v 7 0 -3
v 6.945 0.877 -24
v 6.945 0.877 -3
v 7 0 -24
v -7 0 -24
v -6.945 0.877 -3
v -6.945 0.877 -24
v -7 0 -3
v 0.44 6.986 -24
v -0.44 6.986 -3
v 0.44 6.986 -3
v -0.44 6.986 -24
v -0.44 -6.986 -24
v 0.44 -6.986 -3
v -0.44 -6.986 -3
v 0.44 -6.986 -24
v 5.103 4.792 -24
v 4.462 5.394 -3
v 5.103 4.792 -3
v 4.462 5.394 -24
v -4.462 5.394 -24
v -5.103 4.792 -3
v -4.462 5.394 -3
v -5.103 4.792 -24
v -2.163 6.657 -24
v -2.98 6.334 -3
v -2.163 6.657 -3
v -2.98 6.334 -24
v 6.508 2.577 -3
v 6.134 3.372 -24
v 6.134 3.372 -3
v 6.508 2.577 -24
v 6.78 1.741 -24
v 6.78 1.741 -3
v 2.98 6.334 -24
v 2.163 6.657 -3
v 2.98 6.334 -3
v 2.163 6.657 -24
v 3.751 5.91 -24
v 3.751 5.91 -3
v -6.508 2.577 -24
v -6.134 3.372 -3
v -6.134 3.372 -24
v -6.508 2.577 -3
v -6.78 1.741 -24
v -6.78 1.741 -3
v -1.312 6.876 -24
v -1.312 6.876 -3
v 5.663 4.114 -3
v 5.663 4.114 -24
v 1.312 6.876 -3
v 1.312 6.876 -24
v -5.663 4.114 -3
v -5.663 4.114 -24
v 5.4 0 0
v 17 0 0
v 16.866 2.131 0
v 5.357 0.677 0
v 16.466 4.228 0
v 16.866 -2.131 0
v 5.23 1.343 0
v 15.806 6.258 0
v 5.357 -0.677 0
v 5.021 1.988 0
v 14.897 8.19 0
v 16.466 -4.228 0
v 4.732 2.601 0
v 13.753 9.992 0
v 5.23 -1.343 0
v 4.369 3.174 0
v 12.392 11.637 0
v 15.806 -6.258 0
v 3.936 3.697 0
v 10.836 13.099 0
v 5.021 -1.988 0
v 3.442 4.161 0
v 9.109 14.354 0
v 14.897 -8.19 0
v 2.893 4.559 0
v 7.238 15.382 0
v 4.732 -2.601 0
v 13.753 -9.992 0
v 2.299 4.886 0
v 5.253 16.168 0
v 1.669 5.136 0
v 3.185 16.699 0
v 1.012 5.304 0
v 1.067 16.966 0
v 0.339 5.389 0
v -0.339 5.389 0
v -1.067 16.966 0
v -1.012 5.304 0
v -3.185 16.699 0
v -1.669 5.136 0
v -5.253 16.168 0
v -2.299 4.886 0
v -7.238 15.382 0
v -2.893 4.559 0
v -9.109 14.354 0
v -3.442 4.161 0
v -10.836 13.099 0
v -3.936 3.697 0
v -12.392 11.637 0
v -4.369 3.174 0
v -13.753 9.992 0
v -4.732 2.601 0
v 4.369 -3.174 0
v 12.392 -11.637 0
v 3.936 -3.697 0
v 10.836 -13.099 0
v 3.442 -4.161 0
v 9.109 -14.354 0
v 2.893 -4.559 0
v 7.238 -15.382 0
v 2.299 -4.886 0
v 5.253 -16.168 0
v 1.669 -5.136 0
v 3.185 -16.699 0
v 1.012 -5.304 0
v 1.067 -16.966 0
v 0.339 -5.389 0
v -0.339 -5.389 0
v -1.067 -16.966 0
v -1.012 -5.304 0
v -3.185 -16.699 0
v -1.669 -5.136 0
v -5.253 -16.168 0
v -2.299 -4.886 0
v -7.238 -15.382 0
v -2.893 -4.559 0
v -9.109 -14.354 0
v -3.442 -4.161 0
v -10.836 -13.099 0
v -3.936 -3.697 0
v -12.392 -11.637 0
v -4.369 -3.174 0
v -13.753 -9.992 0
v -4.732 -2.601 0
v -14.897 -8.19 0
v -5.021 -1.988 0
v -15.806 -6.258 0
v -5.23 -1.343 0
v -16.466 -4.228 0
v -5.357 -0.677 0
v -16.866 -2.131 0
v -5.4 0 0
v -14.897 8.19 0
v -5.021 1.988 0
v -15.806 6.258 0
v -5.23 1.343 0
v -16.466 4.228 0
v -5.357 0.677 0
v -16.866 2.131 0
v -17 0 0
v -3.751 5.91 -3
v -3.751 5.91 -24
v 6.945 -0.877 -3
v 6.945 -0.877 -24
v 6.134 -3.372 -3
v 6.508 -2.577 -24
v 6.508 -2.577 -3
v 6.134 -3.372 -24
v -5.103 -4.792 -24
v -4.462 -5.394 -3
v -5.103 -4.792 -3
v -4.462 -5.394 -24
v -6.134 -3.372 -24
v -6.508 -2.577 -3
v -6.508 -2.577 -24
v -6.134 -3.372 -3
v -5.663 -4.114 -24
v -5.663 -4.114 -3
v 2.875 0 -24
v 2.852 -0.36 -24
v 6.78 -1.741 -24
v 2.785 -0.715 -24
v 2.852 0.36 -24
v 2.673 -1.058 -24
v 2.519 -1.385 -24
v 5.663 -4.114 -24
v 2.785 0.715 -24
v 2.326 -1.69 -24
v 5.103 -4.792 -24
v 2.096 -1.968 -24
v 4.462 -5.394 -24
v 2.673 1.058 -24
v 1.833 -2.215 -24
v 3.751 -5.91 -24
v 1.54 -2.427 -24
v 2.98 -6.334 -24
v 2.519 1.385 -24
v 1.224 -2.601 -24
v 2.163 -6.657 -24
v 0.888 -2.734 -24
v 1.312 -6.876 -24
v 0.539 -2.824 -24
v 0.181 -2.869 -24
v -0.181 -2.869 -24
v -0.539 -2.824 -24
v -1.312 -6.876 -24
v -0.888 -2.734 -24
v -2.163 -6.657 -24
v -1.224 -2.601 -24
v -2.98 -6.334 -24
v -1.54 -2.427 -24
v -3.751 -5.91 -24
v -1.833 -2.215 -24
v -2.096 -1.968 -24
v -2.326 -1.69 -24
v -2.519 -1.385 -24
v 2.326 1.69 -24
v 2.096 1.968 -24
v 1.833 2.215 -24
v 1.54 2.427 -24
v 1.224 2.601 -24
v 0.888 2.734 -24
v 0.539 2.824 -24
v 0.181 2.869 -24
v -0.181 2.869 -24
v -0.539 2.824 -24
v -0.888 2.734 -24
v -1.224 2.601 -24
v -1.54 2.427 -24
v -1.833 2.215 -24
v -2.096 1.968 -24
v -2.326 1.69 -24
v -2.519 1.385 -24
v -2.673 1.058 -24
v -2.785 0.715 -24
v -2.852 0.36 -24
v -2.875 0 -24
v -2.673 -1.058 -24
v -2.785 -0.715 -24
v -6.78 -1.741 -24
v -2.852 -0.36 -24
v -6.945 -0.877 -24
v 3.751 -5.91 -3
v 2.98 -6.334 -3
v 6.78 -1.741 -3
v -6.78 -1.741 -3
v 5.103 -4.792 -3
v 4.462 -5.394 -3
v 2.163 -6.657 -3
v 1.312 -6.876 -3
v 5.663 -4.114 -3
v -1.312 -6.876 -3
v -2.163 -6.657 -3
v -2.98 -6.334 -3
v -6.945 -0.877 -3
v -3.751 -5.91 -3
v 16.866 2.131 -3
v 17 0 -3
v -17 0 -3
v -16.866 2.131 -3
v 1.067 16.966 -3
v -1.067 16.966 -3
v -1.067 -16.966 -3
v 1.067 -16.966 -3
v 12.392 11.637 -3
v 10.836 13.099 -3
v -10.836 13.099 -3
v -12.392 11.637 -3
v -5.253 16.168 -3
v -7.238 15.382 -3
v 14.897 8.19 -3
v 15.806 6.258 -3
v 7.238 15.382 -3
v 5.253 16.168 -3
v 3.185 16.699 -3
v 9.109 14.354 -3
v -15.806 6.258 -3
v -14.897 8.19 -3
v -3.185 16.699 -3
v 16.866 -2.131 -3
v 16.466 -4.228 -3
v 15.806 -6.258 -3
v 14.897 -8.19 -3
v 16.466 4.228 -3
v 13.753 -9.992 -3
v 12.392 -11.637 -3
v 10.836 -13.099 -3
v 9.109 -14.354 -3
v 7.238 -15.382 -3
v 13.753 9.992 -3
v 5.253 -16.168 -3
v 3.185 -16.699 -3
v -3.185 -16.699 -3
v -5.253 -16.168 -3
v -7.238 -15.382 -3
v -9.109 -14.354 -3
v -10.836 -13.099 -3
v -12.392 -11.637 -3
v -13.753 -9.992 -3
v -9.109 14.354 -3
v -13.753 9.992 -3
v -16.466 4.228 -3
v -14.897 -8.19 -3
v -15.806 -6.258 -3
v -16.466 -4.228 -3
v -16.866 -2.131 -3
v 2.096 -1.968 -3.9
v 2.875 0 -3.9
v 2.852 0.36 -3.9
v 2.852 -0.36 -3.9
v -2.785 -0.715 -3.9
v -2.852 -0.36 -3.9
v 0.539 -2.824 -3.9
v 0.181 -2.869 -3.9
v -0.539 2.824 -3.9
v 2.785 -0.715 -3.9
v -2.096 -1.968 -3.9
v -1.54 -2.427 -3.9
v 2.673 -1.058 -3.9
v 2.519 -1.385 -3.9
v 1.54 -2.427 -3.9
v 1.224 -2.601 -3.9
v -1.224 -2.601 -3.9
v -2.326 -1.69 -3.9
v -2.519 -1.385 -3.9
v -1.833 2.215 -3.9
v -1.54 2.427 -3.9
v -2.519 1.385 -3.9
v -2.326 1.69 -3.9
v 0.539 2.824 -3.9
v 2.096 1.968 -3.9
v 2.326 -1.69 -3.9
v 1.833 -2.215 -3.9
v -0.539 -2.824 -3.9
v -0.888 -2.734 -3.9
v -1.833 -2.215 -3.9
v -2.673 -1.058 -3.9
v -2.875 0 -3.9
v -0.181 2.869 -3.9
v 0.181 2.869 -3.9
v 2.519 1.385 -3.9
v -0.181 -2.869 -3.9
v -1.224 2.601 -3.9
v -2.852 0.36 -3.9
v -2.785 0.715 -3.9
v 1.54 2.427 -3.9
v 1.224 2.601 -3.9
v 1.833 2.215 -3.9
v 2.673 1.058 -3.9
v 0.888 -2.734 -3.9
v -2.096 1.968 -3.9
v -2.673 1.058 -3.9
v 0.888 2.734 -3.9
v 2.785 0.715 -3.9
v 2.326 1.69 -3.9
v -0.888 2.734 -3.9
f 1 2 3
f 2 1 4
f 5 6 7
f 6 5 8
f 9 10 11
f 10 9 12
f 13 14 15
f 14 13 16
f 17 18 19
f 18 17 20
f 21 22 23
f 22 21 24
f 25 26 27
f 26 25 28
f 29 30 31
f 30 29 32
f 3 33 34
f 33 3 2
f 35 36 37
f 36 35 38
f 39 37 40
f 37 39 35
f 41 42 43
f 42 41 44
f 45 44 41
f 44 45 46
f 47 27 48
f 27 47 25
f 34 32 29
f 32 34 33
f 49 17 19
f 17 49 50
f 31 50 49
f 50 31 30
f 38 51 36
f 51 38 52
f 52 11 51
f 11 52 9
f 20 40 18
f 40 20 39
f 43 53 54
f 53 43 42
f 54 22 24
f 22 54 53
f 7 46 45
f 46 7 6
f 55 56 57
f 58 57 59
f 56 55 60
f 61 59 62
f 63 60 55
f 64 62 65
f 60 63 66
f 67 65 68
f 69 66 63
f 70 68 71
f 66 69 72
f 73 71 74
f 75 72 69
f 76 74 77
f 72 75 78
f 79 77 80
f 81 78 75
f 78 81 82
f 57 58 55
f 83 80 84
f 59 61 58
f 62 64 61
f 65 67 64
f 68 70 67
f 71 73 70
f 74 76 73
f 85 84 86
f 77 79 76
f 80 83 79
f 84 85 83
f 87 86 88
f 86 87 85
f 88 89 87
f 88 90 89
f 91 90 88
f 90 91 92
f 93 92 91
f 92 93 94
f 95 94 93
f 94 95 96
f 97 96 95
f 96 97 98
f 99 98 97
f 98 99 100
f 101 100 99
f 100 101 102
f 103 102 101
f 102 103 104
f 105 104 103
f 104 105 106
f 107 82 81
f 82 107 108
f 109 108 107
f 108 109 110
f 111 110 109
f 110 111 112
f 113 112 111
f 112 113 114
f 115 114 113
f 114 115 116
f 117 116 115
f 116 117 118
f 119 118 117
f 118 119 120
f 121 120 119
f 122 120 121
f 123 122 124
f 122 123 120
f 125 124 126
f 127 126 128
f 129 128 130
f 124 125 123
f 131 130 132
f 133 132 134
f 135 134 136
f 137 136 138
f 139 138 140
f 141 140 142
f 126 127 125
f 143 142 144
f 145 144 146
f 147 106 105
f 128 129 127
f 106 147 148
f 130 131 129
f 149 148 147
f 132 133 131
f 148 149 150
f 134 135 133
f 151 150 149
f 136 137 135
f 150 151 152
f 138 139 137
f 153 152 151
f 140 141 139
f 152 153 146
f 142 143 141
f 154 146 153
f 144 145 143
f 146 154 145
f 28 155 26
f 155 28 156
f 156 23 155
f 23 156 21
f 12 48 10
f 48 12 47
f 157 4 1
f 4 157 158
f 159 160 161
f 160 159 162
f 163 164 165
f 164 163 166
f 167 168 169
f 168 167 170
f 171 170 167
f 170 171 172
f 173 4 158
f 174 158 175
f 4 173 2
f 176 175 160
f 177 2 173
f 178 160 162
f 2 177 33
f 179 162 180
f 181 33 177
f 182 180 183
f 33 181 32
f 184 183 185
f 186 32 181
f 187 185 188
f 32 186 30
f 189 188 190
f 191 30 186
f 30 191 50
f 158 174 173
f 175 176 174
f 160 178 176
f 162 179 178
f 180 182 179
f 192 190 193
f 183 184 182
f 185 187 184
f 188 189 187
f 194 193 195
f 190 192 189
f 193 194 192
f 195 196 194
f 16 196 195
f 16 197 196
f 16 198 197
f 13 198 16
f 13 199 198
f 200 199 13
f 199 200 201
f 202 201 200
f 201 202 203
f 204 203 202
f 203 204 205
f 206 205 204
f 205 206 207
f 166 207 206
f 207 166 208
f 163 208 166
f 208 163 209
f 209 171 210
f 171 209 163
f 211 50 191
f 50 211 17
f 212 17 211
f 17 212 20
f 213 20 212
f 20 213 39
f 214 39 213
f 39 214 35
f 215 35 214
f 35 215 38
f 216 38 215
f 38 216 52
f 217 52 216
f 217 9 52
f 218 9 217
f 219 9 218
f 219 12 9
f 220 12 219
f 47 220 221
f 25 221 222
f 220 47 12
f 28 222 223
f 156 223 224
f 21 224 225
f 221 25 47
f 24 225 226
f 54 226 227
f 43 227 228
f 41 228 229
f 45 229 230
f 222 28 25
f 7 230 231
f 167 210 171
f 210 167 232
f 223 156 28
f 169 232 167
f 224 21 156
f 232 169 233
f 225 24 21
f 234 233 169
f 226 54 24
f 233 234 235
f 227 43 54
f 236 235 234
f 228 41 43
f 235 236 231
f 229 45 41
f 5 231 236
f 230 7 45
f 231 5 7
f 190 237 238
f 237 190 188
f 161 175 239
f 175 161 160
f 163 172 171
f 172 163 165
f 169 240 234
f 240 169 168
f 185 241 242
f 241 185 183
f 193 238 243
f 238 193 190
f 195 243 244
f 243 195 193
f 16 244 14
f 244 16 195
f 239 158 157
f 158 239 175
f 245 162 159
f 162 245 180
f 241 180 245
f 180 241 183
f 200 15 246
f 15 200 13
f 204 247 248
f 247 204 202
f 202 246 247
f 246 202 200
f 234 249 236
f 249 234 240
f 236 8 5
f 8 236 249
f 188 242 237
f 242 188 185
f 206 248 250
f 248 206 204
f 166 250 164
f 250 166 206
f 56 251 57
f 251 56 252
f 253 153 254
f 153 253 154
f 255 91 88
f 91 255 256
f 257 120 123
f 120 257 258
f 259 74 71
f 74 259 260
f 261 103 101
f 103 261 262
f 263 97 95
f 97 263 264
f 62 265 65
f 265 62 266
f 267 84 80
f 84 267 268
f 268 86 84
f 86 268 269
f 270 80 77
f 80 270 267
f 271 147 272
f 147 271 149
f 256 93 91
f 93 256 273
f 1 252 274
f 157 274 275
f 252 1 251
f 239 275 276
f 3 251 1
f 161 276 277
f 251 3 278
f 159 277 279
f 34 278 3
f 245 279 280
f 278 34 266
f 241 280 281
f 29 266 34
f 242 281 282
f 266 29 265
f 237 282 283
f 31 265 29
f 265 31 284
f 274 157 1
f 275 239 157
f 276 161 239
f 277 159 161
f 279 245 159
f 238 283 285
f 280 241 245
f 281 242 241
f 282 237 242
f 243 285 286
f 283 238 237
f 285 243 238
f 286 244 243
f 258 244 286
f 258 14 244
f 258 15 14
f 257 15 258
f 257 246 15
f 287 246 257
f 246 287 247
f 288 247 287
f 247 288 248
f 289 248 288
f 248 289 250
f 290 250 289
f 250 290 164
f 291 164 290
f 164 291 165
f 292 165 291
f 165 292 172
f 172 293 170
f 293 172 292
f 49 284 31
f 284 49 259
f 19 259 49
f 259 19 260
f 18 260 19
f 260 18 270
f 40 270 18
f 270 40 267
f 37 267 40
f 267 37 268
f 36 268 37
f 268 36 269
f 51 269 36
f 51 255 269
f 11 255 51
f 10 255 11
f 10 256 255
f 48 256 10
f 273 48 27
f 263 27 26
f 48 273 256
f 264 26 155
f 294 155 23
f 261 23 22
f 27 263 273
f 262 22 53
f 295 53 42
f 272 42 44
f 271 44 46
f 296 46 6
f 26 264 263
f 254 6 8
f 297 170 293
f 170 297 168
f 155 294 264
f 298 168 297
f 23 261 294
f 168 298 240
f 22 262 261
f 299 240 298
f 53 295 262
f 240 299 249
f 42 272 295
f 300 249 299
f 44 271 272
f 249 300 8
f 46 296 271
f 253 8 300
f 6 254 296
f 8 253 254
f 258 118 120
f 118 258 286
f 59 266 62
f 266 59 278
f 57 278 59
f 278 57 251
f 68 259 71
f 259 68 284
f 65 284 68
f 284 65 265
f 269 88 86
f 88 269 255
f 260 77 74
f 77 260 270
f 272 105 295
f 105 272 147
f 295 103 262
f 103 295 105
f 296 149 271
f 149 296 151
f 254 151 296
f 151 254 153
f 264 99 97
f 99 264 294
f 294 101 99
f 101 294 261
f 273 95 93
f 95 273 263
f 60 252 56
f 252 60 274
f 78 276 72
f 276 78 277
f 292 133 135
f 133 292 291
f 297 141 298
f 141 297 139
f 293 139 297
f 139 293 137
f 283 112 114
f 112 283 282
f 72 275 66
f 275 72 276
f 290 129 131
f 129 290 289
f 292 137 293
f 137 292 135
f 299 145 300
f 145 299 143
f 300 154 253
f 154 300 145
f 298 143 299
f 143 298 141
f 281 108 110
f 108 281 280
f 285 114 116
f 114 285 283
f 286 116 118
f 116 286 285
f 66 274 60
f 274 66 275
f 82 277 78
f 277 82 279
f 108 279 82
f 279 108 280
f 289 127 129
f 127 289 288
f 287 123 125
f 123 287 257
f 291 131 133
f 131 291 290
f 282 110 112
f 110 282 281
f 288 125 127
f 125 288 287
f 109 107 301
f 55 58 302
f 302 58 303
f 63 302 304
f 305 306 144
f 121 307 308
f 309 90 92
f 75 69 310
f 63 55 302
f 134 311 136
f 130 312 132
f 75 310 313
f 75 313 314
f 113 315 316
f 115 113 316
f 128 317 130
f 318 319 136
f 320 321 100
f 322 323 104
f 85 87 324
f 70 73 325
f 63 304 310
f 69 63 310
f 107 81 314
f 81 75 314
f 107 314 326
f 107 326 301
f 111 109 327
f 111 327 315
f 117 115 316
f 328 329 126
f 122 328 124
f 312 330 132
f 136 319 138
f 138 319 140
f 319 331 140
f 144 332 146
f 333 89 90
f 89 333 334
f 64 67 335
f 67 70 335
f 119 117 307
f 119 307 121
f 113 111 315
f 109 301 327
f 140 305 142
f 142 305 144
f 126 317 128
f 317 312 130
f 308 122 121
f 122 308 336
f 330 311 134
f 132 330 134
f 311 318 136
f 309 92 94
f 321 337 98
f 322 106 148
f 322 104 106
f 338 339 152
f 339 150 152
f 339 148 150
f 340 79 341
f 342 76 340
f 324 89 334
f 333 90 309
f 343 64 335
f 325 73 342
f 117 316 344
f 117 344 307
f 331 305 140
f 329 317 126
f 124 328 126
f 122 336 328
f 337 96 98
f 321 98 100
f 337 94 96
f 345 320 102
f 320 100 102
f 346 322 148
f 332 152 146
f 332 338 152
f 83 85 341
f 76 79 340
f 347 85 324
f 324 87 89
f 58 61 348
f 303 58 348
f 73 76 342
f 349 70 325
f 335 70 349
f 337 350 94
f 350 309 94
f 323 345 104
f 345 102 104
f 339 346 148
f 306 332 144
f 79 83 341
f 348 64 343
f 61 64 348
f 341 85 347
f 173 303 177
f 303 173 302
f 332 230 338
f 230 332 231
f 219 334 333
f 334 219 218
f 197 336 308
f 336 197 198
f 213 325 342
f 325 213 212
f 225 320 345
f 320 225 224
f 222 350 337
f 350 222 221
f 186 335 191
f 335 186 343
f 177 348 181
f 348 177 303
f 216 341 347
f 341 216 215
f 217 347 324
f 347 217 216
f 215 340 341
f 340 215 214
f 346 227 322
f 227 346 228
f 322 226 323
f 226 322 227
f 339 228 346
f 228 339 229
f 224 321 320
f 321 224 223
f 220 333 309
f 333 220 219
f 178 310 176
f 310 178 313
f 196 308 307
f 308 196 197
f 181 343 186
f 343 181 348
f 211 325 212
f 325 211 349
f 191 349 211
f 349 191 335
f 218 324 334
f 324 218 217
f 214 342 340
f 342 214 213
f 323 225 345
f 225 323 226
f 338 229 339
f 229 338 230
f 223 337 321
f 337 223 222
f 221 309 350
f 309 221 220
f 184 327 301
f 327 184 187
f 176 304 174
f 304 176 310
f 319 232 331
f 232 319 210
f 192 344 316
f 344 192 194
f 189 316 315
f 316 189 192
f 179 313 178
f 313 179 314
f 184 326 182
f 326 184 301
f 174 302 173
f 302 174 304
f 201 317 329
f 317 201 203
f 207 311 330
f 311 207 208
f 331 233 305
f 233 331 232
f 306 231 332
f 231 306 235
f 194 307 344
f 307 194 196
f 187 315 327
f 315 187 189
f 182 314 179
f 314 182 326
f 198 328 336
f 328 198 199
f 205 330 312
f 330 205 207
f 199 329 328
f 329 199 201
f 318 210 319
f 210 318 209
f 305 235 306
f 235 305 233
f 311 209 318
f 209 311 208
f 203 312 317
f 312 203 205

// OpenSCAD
$fn = 50;


difference() {
	union() {
		translate(v = [0, 0, -24.0000000000]) {
			cylinder(h = 24, r = 7.0000000000);
		}
		translate(v = [0, 0, -3.0000000000]) {
			cylinder(h = 3, r = 17.0000000000);
		}
	}
	union() {
		translate(v = [0, 0, 0]) {
			rotate(a = [0, 0, 0]) {
				difference() {
					union() {
						#translate(v = [0, 0, -24.0000000000]) {
							cylinder(h = 24, r = 2.6000000000);
						}
						#translate(v = [0, 0, -3.9000000000]) {
							cylinder(h = 3.9000000000, r = 7.0000000000, r1 = 2.8750000000, r2 = 5.4000000000);
						}
						#translate(v = [0, 0, -24.0000000000]) {
							cylinder(h = 24, r = 2.8750000000);
						}
						#translate(v = [0, 0, -24.0000000000]) {
							cylinder(h = 24, r = 2.6000000000);
						}
					}
					union();
				}
			}
		}
	}
}
